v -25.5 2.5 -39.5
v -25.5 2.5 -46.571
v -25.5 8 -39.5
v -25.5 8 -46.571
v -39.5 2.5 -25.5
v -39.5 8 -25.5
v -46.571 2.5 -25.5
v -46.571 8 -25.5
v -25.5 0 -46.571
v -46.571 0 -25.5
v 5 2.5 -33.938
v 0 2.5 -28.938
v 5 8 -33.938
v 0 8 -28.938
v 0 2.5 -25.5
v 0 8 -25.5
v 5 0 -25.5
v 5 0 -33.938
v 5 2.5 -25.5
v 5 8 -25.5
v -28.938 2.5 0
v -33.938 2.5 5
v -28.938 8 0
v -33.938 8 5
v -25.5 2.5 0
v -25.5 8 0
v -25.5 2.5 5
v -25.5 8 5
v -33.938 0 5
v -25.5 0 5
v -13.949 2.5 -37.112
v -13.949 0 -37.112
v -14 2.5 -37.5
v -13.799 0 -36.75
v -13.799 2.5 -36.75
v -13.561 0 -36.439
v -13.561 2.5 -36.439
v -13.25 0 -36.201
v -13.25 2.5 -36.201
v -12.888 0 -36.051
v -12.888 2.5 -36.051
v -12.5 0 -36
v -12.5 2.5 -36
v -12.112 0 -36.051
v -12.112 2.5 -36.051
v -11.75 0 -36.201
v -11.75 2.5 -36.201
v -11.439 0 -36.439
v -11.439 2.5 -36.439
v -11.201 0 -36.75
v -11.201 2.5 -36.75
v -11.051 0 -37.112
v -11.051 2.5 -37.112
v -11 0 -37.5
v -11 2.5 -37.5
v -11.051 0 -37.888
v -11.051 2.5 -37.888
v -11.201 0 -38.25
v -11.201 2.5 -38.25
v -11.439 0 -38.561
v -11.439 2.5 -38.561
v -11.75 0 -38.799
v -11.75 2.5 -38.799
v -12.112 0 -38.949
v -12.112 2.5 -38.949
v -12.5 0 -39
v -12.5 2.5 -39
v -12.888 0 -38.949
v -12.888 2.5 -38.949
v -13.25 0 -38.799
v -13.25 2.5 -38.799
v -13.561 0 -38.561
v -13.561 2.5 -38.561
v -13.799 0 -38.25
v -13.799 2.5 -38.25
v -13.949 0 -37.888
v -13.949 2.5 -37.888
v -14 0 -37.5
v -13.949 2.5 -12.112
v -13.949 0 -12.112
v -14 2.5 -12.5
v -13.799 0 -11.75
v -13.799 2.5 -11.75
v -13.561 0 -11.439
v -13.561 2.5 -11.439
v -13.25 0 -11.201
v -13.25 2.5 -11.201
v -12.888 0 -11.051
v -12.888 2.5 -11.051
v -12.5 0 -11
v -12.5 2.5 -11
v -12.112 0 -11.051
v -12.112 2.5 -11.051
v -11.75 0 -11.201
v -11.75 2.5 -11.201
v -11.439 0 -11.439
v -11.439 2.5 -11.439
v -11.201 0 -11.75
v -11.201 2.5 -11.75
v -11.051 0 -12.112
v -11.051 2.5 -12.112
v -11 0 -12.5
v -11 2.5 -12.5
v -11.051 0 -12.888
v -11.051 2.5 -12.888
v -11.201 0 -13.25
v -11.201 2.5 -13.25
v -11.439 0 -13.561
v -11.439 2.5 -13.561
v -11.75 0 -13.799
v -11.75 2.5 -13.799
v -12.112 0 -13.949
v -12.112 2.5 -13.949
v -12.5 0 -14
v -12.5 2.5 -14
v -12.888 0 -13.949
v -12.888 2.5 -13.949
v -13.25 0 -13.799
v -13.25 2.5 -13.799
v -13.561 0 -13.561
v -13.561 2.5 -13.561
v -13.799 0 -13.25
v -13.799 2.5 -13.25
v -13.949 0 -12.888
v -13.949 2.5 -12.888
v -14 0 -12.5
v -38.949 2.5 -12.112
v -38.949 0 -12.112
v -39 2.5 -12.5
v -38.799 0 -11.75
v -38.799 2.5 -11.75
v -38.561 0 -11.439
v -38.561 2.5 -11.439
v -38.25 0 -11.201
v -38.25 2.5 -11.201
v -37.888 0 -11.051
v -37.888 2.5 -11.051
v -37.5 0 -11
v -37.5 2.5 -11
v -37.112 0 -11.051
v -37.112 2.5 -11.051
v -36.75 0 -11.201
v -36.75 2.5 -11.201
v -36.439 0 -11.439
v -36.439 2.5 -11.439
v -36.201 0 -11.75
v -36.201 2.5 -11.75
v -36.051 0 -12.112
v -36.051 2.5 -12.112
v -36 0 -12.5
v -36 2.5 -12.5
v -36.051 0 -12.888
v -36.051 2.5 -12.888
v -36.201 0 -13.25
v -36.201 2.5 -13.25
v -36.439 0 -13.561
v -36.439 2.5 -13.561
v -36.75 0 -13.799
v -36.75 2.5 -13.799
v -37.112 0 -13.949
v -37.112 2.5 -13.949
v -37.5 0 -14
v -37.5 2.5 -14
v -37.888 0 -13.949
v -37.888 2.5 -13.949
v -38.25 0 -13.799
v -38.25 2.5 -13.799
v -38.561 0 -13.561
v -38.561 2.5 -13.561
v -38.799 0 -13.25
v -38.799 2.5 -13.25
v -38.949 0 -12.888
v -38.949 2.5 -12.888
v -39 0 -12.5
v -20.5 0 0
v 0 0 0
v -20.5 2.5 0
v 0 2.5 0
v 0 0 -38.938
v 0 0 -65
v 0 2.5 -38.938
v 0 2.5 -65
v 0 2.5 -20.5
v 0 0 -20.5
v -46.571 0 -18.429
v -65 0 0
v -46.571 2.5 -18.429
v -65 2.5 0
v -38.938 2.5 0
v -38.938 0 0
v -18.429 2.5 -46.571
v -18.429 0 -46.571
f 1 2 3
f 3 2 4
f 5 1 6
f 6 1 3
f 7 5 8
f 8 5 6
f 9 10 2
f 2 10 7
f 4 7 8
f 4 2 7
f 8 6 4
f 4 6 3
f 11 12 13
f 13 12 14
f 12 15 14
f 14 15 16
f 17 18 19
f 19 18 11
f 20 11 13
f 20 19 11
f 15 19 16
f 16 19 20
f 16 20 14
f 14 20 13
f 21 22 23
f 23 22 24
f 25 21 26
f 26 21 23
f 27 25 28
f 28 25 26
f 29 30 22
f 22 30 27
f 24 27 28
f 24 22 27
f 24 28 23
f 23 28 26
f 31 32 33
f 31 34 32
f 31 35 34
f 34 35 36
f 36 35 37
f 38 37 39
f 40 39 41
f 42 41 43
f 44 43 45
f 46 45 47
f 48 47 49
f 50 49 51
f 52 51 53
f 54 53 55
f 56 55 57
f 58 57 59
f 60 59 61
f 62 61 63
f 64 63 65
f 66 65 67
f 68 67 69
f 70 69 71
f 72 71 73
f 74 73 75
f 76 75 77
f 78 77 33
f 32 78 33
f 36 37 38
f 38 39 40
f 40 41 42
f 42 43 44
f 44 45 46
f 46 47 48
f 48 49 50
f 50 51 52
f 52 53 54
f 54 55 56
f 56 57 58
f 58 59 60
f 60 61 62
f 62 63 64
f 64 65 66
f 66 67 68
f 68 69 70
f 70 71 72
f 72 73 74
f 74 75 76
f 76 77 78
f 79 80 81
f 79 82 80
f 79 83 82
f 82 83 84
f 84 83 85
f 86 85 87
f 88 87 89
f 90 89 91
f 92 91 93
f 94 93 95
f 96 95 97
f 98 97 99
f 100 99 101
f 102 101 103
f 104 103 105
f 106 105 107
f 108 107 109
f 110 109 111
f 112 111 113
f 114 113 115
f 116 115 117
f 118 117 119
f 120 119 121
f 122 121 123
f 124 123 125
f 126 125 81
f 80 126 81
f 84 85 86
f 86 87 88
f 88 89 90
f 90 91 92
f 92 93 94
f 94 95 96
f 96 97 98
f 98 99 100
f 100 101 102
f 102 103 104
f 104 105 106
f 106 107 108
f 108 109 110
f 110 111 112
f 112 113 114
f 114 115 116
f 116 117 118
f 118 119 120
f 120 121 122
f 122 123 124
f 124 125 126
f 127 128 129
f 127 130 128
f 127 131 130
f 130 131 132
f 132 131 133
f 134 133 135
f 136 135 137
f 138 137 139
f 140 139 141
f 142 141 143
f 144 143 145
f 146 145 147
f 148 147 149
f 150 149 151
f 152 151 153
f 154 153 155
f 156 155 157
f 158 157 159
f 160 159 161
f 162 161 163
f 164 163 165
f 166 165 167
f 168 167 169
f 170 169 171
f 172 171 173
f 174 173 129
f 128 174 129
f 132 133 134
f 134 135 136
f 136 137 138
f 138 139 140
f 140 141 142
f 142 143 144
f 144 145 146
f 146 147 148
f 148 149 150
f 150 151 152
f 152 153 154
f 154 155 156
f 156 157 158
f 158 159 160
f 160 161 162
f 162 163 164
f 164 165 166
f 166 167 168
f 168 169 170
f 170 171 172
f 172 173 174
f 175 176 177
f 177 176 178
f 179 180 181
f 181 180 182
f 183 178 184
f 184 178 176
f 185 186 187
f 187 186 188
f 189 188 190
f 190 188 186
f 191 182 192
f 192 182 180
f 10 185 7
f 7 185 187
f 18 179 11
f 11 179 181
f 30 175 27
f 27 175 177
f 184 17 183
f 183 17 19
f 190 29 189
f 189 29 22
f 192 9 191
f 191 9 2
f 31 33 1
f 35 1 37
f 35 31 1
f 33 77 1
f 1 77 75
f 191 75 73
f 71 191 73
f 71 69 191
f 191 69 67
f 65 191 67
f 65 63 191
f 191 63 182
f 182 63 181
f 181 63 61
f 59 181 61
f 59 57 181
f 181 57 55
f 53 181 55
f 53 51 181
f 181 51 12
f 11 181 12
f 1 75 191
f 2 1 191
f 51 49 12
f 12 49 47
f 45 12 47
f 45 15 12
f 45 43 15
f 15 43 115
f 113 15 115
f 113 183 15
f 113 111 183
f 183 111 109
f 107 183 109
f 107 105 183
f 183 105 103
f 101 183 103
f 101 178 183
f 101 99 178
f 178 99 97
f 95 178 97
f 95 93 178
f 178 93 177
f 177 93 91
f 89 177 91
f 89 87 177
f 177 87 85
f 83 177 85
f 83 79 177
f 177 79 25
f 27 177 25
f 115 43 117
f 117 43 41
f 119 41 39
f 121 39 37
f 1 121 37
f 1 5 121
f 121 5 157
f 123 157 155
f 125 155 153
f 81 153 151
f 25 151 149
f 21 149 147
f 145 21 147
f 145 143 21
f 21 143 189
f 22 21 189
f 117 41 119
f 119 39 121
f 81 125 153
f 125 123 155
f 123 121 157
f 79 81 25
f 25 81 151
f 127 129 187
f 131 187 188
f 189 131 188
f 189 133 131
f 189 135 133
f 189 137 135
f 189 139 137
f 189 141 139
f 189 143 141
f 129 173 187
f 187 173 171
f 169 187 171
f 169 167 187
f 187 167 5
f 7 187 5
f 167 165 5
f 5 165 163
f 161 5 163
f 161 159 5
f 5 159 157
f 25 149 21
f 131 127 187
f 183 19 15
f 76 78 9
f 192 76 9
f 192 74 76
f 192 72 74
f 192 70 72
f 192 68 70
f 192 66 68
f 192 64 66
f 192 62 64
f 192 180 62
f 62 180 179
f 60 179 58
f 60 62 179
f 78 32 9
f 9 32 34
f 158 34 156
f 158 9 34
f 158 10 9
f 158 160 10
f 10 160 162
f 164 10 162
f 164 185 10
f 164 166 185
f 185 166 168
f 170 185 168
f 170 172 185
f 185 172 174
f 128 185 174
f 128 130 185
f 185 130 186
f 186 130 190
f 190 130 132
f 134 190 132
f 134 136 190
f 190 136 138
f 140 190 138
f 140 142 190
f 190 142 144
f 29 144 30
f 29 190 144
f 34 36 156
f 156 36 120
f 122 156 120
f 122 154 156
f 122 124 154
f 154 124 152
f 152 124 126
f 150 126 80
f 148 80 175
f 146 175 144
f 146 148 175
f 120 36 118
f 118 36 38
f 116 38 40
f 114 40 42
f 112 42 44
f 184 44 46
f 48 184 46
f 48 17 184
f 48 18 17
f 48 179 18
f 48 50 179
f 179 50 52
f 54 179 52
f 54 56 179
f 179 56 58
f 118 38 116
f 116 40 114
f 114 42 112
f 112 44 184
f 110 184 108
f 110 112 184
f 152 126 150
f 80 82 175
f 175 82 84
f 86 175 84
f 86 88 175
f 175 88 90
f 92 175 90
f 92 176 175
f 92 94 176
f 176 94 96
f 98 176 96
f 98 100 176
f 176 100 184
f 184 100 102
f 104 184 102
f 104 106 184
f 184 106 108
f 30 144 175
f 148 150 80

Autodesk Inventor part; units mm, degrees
ref_plane "YZ Plane" through (0, 0, 0) normal (1, 0, 0) x (0, 1, 0)
ref_plane "XZ Plane" through (0, 0, 0) normal (0, 1, 0) x (-1, 0, 0)
ref_plane "XY Plane" through (0, 0, 0) normal (0, 0, 1) x (1, 0, 0)
sketch "Sketch1" plane through (0, 0, 0) normal (0, 1, 0) x (-1, 0, 0)
  line L0 (0, 0) -> (25, 0)
  line L1 (0, -25) -> (0, 0)
  line L2 (25, 0) -> (50, 0)
  circle A0 centre (37.5, -12.5) radius 1.5
  circle A1 centre (12.5, -12.5) radius 1.5
  circle A2 centre (12.5, -37.5) radius 1.5
  line L3 (0, 0) -> (0, -25.5)
  line L4 (50, 0) -> (51, 0)
  line L5 (46.5711, -25.5) -> (39.5, -25.5)
  line L6 (25.5, -39.5) -> (25.5, -46.5711)
  line L7 (0, 0) -> (0, -65)
  line L8 (0, 0) -> (65, 0)
  line L9 (65, 0) -> (0, -65)
  line L10 (25.5, 0) -> (25.5, 5)
  line L11 (25.5, 5) -> (33.9376, 5)
  line L12 (0, -25.5) -> (-5, -25.5)
  line L13 (-5, -25.5) -> (-5, -33.9376)
  line L14 (32.5, -32.5) -> (36.0355, -36.0355)
  line L15 (36.0355, -36.0355) -> (25.5, -46.5711)
  line L16 (36.0355, -36.0355) -> (46.5711, -25.5)
  line L17 (28.9376, 0) -> (33.9376, 5)
  line L18 (-5, -33.9376) -> (0, -28.9376)
  line L19 (12.5, -12.5) -> (12.5, -37.5)
  line L20 (12.5, -12.5) -> (37.5, -12.5)
  line L21 (33.9376, 5) -> (38.9376, 0)
  line L22 (25.5, 5) -> (20.5, 0)
  line L23 (-5, -25.5) -> (0, -20.5)
  line L24 (-5, -33.9376) -> (0, -38.9376)
  line L25 (25.5, -46.5711) -> (18.4289, -46.5711)
  line L26 (46.5711, -25.5) -> (46.5711, -18.4289)
  line L27 (46.5711, -18.4289) -> (39.5, -25.5)
  line L28 (25.5, -39.5) -> (18.4289, -46.5711)
  line L29 (0, -20.5) -> (0, -25.5)
  line L30 (25.5, 0) -> (20.5, 0)
  line L31 (0, -28.9376) -> (0, -38.9376)
  line L32 (0, -20.5) -> (0, -25.5)
  line L33 (0, -25.5) -> (0, -28.9376)
  line L34 (0, -28.9376) -> (0, -38.9376)
  line L35 (-5, -33.9376) -> (0, -38.9376)
  line L36 (0, -38.9376) -> (0, -28.9376)
  line L37 (0, -28.9376) -> (-5, -33.9376)
  dimension "d36" = 25
  dimension "d38" = 25
  dimension "d42" = 3
  dimension "d43" = 3
  dimension "d44" = 3
  dimension "d45" = 25.5
  dimension "d47" = 1
  dimension "d51" = 65
  dimension "d52" = 65
  dimension "d54" = 5
  dimension "d55" = 5
  dimension "d56" = 5
extrude "Extrusion5" add sketch "Sketch1" along normal blind 2.5 contours L0 L2 L4 L8 L9 L7 L3 L1 | L22 L10 L2 L0 | L1 L3 L12 L23 | L21 L2 L17 | L18 L7 L24 | L9 L6 L25 | L26 L5 L9
extrude "Extrusion6" add sketch "Sketch1" along normal blind 8 contours L11 L17 L2 L10 | L12 L7 L18 L13 | L9 L14 L15 L6 | L9 L5 L16 L14
properties part number "stencil"
